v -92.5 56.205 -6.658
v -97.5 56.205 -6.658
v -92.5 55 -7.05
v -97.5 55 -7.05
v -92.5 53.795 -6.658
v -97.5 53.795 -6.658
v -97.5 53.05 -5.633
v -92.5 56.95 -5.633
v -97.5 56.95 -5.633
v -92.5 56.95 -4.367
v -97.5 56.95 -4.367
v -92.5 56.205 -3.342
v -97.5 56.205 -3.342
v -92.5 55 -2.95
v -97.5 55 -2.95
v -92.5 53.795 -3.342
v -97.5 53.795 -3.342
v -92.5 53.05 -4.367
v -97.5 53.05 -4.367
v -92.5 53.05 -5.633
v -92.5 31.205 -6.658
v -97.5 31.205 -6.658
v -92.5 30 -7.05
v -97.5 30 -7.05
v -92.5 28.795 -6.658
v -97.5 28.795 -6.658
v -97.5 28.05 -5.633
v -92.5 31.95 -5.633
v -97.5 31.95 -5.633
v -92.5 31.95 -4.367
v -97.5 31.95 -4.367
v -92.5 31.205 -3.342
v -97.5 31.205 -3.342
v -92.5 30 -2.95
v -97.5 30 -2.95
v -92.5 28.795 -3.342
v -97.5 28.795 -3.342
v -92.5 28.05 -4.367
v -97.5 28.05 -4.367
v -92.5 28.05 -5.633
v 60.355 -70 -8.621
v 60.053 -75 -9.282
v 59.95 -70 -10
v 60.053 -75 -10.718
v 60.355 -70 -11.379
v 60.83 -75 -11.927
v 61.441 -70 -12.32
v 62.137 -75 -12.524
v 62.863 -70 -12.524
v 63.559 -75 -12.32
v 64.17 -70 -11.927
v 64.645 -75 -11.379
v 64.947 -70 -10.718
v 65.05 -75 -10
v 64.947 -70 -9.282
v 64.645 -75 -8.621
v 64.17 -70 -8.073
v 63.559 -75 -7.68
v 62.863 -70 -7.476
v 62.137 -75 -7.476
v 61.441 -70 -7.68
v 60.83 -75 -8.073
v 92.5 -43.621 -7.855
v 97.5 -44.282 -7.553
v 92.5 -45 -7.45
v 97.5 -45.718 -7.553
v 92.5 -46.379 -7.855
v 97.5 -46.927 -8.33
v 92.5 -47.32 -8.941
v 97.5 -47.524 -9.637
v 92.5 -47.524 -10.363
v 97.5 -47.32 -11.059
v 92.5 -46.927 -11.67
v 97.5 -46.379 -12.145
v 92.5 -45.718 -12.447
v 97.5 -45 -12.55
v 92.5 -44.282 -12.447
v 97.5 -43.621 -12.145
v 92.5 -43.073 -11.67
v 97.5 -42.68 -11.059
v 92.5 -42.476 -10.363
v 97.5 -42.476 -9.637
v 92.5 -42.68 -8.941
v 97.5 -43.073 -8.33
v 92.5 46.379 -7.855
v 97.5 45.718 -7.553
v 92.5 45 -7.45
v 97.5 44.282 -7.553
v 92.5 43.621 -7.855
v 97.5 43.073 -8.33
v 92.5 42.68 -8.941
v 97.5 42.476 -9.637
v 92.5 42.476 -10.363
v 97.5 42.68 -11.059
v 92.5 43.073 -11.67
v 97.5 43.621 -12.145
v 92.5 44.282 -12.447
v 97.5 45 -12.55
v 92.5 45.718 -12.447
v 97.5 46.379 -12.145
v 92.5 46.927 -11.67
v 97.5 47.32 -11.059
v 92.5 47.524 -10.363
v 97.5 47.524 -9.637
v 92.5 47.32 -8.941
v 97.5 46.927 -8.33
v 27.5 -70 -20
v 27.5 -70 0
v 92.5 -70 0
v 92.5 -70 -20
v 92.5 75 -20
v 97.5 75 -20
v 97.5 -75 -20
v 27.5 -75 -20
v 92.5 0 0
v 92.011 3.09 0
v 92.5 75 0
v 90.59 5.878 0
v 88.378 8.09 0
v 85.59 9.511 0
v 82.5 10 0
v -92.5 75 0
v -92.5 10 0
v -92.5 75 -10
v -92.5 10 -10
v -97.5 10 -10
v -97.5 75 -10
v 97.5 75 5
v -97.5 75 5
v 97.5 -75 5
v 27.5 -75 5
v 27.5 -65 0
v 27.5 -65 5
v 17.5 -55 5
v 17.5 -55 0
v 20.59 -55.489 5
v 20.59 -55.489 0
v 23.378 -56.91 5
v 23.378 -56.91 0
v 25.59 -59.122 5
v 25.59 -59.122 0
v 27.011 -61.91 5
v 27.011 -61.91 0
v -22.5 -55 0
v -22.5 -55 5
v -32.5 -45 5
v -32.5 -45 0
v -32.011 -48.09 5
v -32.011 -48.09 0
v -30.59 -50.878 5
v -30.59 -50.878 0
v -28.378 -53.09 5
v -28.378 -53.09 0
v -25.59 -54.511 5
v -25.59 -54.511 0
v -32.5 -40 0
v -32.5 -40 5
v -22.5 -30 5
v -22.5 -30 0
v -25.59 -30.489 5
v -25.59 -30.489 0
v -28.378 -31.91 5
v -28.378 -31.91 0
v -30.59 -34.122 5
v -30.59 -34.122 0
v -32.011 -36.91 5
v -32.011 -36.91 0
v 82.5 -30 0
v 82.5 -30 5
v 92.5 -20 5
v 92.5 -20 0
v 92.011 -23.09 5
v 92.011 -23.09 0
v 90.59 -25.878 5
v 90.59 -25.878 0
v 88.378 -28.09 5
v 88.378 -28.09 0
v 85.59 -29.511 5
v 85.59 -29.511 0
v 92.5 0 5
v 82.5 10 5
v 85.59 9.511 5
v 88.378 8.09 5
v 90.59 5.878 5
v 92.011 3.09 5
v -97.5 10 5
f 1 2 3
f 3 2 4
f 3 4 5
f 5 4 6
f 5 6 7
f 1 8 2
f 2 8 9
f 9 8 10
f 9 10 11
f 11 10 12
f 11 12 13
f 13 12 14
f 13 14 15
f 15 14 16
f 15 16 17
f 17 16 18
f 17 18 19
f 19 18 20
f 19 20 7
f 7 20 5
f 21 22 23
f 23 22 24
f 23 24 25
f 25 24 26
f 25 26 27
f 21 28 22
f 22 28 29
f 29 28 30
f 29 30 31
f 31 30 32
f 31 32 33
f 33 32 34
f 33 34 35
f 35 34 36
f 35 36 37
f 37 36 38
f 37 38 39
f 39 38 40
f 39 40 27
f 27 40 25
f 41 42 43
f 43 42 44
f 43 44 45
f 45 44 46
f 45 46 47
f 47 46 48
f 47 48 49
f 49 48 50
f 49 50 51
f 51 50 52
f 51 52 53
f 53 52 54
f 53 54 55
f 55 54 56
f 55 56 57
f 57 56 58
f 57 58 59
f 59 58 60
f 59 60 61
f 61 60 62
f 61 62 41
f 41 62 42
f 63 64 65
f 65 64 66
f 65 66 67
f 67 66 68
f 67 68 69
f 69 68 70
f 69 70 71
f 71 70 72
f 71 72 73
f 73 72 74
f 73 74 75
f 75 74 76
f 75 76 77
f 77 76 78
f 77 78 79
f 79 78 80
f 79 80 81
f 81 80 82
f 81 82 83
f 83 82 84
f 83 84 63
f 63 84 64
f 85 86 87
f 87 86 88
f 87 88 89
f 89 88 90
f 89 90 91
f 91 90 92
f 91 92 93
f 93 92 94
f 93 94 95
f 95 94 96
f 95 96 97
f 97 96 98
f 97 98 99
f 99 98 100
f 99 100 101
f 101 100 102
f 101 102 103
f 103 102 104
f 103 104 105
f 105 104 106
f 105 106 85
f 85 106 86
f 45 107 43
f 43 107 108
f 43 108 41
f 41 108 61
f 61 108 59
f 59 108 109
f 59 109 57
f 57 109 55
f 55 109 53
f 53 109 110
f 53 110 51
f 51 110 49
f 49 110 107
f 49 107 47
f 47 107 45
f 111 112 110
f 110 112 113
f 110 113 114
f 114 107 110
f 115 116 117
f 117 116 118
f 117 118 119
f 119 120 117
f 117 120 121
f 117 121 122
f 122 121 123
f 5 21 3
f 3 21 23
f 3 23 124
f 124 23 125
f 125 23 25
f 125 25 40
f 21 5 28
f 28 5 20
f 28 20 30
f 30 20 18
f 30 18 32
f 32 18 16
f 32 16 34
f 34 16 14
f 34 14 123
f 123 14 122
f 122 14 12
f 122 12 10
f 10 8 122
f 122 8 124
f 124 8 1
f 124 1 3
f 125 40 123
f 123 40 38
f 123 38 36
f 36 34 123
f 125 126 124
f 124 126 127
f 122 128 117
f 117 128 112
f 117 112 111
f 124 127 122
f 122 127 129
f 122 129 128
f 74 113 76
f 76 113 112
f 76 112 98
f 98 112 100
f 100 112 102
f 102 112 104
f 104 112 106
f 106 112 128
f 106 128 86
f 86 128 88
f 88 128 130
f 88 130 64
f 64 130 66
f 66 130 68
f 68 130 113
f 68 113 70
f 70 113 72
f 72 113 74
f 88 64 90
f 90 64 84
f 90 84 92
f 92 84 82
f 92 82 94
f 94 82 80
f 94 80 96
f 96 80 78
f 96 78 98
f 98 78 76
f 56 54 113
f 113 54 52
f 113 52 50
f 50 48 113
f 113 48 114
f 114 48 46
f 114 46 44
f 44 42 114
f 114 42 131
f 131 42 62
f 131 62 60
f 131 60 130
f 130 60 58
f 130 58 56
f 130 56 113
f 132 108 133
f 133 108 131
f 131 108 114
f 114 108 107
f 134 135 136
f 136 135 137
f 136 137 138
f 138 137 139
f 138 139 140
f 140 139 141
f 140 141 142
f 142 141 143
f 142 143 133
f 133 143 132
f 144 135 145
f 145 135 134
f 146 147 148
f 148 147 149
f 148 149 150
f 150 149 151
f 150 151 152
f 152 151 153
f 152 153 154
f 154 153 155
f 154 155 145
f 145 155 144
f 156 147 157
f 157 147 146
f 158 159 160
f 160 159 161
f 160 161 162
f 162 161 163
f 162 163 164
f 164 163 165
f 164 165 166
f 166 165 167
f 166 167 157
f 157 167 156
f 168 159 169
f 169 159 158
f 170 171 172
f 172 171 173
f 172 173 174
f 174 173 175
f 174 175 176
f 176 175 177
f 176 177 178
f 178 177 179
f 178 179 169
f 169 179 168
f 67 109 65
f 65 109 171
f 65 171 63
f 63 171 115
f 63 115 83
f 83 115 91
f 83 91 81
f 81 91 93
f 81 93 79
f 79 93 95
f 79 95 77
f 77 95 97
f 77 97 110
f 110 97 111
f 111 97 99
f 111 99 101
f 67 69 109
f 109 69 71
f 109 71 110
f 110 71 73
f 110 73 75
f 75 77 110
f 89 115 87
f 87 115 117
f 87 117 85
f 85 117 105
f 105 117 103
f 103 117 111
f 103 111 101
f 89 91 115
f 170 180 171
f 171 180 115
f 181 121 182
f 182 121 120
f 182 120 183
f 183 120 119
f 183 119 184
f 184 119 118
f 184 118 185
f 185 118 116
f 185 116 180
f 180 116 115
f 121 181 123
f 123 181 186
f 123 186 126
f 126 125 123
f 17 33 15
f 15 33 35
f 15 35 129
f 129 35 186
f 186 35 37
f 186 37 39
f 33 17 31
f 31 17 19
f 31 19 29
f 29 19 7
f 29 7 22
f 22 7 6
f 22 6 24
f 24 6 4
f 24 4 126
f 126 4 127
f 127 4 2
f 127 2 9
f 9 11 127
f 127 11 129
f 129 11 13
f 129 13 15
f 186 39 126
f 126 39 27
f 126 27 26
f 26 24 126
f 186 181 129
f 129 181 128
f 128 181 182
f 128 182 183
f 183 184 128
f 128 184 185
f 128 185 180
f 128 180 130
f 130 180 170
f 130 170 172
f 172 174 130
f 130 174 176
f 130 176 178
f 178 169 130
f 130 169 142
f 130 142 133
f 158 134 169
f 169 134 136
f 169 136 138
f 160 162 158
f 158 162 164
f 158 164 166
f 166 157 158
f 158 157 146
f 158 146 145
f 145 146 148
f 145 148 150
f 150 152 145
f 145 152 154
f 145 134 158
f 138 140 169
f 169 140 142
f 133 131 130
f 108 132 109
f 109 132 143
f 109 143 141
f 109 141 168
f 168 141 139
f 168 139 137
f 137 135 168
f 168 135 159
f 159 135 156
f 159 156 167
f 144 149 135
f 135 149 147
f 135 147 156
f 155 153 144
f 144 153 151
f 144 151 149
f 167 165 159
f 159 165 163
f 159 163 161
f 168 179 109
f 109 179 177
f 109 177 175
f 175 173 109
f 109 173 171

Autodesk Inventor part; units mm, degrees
ref_plane "YZ Plane" through (0, 0, 0) normal (1, 0, 0) x (0, 1, 0)
ref_plane "XZ Plane" through (0, 0, 0) normal (0, 1, 0) x (-1, 0, 0)
ref_plane "XY Plane" through (0, 0, 0) normal (0, 0, 1) x (1, 0, 0)
sketch "Sketch1" plane through (0, 0, 0) normal (0, 0, 1) x (1, 0, 0)
  line L0 (-97.5, -75) -> (97.5, -75)
  line L1 (97.5, -75) -> (97.5, 75)
  line L2 (97.5, 75) -> (-97.5, 75)
  line L3 (-97.5, 75) -> (-97.5, -75)
  line L4 (-97.5, -75) -> (-32.5, -30) construction
  line L5 (97.5, -75) -> (-97.5, 75) construction
  line L6 (-97.5, -75) -> (-32.5, -75)
  line L7 (-32.5, -45) -> (-32.5, -40)
  line L8 (-42.5, 10) -> (-97.5, 10)
  line L9 (-97.5, 10) -> (-97.5, -75)
  line L10 (-97.5, -75) -> (27.5, -75)
  line L11 (27.5, -75) -> (27.5, -65)
  line L12 (17.5, -55) -> (-22.5, -55)
  line L13 (-97.5, -55) -> (-97.5, -75)
  arc A0 (-32.5, -45) -> (-22.5, -55) centre (-22.5, -45) ccw
  arc A1 (27.5, -65) -> (17.5, -55) centre (17.5, -65) ccw
  line L14 (-42.5, 10) -> (82.5, 10)
  line L15 (92.5, 0) -> (92.5, -20)
  line L16 (82.5, -30) -> (-22.5, -30)
  line L17 (-32.5, -30) -> (97.5, 75) construction
  arc A2 (-22.5, -30) -> (-32.5, -40) centre (-22.5, -40) ccw
  arc A3 (82.5, -30) -> (92.5, -20) centre (82.5, -20) ccw
  arc A4 (92.5, 0) -> (82.5, 10) centre (82.5, 0) ccw
  point P0 (0, 0)
  point P1 (-32.5, 10)
  point P2 (27.5, -55)
  point P3 (92.5, -30)
  point P4 (92.5, 10)
  dimension "d0" = 195
  dimension "d1" = 150
  dimension "d2" = 65
  dimension "d3" = 85
  dimension "d4" = 125
  dimension "d5" = 20
  dimension "d36" = 40
  dimension "d37" = 190
  dimension "d38" = 10
extrude "Extrusion1" add sketch "Sketch1" along normal blind 5 contours L11 A1 L12 A0 L7 A2 L16 A3 L15 A4 L14 L8 L3 L2 L1 L0
sketch "Sketch2" plane through (0, 0, 0) normal (0, 0, -1) x (-1, 0, 0)
  line L0 (92.5, 75) -> (97.5, 75)
  line L1 (97.5, 75) -> (97.5, 10)
  line L2 (97.5, 10) -> (92.5, 10)
  line L3 (92.5, 10) -> (92.5, 75)
  line L4 (-97.5, 75) -> (97.5, 75) projected
  line L5 (97.5, 10) -> (-82.5, 10) projected
  line L6 (97.5, 75) -> (97.5, 10) projected
  point P0 (0, 0)
  point P1 (42.5, 5)
  point P2 (97.5, -75)
  point P3 (-82.5, 10)
  dimension "d9" = 5
extrude "Extrusion2" add sketch "Sketch2" along normal blind 10
sketch "Sketch3" plane through (0, 0, 0) normal (0, 0, -1) x (-1, 0, 0)
  line L0 (-97.5, 75) -> (-92.5, 75)
  line L1 (-92.5, 75) -> (-92.5, -75)
  line L2 (-92.5, -75) -> (-97.5, -75)
  line L3 (-97.5, -75) -> (-97.5, 75)
  line L4 (-97.5, -70) -> (-27.5, -70)
  line L5 (-27.5, -70) -> (-27.5, -75)
  line L6 (-27.5, -75) -> (-97.5, -75)
  line L7 (-97.5, -75) -> (-97.5, -70)
  line L8 (-97.5, -75) -> (-97.5, 75) projected
  line L9 (-97.5, 75) -> (92.5, 75) projected
  line L10 (-27.5, -75) -> (-97.5, -75) projected
  line L11 (-27.5, -65) -> (-27.5, -75) projected
  point P0 (0, 0)
  point P1 (-92.5, -70)
  point P2 (97.5, -75)
  dimension "d12" = 5
  dimension "d13" = 5
extrude "Extrusion3" add sketch "Sketch3" along normal blind 20
sketch "Sketch4" plane through (97.5, -75, 5) normal (1, 0, 0) x (0, 0, -1)
  circle A0 centre (15, 30) radius 2.55
  circle A1 centre (15, 120) radius 2.55
  line L0 (0, 0) -> (0, 150) projected
  line L1 (25, 0) -> (0, 0) projected
  point P0 (5, 75)
  dimension "d16" = 5.1
  dimension "d17" = 5.1
  dimension "d18" = 15
  dimension "d19" = 30
  dimension "d20" = 90
extrude "Extrusion4" cut sketch "Sketch4" against normal blind 20
sketch "Sketch5" plane through (27.5, -75, 5) normal (0, -1, 0) x (1, 0, 0)
  circle A0 centre (35, -15) radius 2.55
  line L0 (70, -25) -> (70, 0) projected
  line L1 (0, 0) -> (70, 0) projected
  point P0 (-27.5, -5)
  point P1 (70, -12.5)
  point P2 (35, 0)
  point P3 (-125, 0)
  dimension "d23" = 5.1
  dimension "d24" = 35
  dimension "d25" = 15
extrude "Extrusion5" cut sketch "Sketch5" against normal blind 20
sketch "Sketch6" plane through (-97.5, 10, 5) normal (-1, 0, 0) x (0, 0, 1)
  circle A0 centre (-10, 45) radius 2.05
  circle A1 centre (-10, 20) radius 2.05
  line L0 (-15, 0) -> (-15, 65) projected
  line L1 (-15, 0) -> (0, 0) projected
  line L2 (0, 65) -> (-15, 65) projected
  point P0 (-5, -10)
  dimension "d28" = 4.1
  dimension "d29" = 4.1
  dimension "d30" = 5
  dimension "d31" = 20
  dimension "d32" = 20
extrude "Extrusion6" cut sketch "Sketch6" against normal blind 20
properties part number "tright"
